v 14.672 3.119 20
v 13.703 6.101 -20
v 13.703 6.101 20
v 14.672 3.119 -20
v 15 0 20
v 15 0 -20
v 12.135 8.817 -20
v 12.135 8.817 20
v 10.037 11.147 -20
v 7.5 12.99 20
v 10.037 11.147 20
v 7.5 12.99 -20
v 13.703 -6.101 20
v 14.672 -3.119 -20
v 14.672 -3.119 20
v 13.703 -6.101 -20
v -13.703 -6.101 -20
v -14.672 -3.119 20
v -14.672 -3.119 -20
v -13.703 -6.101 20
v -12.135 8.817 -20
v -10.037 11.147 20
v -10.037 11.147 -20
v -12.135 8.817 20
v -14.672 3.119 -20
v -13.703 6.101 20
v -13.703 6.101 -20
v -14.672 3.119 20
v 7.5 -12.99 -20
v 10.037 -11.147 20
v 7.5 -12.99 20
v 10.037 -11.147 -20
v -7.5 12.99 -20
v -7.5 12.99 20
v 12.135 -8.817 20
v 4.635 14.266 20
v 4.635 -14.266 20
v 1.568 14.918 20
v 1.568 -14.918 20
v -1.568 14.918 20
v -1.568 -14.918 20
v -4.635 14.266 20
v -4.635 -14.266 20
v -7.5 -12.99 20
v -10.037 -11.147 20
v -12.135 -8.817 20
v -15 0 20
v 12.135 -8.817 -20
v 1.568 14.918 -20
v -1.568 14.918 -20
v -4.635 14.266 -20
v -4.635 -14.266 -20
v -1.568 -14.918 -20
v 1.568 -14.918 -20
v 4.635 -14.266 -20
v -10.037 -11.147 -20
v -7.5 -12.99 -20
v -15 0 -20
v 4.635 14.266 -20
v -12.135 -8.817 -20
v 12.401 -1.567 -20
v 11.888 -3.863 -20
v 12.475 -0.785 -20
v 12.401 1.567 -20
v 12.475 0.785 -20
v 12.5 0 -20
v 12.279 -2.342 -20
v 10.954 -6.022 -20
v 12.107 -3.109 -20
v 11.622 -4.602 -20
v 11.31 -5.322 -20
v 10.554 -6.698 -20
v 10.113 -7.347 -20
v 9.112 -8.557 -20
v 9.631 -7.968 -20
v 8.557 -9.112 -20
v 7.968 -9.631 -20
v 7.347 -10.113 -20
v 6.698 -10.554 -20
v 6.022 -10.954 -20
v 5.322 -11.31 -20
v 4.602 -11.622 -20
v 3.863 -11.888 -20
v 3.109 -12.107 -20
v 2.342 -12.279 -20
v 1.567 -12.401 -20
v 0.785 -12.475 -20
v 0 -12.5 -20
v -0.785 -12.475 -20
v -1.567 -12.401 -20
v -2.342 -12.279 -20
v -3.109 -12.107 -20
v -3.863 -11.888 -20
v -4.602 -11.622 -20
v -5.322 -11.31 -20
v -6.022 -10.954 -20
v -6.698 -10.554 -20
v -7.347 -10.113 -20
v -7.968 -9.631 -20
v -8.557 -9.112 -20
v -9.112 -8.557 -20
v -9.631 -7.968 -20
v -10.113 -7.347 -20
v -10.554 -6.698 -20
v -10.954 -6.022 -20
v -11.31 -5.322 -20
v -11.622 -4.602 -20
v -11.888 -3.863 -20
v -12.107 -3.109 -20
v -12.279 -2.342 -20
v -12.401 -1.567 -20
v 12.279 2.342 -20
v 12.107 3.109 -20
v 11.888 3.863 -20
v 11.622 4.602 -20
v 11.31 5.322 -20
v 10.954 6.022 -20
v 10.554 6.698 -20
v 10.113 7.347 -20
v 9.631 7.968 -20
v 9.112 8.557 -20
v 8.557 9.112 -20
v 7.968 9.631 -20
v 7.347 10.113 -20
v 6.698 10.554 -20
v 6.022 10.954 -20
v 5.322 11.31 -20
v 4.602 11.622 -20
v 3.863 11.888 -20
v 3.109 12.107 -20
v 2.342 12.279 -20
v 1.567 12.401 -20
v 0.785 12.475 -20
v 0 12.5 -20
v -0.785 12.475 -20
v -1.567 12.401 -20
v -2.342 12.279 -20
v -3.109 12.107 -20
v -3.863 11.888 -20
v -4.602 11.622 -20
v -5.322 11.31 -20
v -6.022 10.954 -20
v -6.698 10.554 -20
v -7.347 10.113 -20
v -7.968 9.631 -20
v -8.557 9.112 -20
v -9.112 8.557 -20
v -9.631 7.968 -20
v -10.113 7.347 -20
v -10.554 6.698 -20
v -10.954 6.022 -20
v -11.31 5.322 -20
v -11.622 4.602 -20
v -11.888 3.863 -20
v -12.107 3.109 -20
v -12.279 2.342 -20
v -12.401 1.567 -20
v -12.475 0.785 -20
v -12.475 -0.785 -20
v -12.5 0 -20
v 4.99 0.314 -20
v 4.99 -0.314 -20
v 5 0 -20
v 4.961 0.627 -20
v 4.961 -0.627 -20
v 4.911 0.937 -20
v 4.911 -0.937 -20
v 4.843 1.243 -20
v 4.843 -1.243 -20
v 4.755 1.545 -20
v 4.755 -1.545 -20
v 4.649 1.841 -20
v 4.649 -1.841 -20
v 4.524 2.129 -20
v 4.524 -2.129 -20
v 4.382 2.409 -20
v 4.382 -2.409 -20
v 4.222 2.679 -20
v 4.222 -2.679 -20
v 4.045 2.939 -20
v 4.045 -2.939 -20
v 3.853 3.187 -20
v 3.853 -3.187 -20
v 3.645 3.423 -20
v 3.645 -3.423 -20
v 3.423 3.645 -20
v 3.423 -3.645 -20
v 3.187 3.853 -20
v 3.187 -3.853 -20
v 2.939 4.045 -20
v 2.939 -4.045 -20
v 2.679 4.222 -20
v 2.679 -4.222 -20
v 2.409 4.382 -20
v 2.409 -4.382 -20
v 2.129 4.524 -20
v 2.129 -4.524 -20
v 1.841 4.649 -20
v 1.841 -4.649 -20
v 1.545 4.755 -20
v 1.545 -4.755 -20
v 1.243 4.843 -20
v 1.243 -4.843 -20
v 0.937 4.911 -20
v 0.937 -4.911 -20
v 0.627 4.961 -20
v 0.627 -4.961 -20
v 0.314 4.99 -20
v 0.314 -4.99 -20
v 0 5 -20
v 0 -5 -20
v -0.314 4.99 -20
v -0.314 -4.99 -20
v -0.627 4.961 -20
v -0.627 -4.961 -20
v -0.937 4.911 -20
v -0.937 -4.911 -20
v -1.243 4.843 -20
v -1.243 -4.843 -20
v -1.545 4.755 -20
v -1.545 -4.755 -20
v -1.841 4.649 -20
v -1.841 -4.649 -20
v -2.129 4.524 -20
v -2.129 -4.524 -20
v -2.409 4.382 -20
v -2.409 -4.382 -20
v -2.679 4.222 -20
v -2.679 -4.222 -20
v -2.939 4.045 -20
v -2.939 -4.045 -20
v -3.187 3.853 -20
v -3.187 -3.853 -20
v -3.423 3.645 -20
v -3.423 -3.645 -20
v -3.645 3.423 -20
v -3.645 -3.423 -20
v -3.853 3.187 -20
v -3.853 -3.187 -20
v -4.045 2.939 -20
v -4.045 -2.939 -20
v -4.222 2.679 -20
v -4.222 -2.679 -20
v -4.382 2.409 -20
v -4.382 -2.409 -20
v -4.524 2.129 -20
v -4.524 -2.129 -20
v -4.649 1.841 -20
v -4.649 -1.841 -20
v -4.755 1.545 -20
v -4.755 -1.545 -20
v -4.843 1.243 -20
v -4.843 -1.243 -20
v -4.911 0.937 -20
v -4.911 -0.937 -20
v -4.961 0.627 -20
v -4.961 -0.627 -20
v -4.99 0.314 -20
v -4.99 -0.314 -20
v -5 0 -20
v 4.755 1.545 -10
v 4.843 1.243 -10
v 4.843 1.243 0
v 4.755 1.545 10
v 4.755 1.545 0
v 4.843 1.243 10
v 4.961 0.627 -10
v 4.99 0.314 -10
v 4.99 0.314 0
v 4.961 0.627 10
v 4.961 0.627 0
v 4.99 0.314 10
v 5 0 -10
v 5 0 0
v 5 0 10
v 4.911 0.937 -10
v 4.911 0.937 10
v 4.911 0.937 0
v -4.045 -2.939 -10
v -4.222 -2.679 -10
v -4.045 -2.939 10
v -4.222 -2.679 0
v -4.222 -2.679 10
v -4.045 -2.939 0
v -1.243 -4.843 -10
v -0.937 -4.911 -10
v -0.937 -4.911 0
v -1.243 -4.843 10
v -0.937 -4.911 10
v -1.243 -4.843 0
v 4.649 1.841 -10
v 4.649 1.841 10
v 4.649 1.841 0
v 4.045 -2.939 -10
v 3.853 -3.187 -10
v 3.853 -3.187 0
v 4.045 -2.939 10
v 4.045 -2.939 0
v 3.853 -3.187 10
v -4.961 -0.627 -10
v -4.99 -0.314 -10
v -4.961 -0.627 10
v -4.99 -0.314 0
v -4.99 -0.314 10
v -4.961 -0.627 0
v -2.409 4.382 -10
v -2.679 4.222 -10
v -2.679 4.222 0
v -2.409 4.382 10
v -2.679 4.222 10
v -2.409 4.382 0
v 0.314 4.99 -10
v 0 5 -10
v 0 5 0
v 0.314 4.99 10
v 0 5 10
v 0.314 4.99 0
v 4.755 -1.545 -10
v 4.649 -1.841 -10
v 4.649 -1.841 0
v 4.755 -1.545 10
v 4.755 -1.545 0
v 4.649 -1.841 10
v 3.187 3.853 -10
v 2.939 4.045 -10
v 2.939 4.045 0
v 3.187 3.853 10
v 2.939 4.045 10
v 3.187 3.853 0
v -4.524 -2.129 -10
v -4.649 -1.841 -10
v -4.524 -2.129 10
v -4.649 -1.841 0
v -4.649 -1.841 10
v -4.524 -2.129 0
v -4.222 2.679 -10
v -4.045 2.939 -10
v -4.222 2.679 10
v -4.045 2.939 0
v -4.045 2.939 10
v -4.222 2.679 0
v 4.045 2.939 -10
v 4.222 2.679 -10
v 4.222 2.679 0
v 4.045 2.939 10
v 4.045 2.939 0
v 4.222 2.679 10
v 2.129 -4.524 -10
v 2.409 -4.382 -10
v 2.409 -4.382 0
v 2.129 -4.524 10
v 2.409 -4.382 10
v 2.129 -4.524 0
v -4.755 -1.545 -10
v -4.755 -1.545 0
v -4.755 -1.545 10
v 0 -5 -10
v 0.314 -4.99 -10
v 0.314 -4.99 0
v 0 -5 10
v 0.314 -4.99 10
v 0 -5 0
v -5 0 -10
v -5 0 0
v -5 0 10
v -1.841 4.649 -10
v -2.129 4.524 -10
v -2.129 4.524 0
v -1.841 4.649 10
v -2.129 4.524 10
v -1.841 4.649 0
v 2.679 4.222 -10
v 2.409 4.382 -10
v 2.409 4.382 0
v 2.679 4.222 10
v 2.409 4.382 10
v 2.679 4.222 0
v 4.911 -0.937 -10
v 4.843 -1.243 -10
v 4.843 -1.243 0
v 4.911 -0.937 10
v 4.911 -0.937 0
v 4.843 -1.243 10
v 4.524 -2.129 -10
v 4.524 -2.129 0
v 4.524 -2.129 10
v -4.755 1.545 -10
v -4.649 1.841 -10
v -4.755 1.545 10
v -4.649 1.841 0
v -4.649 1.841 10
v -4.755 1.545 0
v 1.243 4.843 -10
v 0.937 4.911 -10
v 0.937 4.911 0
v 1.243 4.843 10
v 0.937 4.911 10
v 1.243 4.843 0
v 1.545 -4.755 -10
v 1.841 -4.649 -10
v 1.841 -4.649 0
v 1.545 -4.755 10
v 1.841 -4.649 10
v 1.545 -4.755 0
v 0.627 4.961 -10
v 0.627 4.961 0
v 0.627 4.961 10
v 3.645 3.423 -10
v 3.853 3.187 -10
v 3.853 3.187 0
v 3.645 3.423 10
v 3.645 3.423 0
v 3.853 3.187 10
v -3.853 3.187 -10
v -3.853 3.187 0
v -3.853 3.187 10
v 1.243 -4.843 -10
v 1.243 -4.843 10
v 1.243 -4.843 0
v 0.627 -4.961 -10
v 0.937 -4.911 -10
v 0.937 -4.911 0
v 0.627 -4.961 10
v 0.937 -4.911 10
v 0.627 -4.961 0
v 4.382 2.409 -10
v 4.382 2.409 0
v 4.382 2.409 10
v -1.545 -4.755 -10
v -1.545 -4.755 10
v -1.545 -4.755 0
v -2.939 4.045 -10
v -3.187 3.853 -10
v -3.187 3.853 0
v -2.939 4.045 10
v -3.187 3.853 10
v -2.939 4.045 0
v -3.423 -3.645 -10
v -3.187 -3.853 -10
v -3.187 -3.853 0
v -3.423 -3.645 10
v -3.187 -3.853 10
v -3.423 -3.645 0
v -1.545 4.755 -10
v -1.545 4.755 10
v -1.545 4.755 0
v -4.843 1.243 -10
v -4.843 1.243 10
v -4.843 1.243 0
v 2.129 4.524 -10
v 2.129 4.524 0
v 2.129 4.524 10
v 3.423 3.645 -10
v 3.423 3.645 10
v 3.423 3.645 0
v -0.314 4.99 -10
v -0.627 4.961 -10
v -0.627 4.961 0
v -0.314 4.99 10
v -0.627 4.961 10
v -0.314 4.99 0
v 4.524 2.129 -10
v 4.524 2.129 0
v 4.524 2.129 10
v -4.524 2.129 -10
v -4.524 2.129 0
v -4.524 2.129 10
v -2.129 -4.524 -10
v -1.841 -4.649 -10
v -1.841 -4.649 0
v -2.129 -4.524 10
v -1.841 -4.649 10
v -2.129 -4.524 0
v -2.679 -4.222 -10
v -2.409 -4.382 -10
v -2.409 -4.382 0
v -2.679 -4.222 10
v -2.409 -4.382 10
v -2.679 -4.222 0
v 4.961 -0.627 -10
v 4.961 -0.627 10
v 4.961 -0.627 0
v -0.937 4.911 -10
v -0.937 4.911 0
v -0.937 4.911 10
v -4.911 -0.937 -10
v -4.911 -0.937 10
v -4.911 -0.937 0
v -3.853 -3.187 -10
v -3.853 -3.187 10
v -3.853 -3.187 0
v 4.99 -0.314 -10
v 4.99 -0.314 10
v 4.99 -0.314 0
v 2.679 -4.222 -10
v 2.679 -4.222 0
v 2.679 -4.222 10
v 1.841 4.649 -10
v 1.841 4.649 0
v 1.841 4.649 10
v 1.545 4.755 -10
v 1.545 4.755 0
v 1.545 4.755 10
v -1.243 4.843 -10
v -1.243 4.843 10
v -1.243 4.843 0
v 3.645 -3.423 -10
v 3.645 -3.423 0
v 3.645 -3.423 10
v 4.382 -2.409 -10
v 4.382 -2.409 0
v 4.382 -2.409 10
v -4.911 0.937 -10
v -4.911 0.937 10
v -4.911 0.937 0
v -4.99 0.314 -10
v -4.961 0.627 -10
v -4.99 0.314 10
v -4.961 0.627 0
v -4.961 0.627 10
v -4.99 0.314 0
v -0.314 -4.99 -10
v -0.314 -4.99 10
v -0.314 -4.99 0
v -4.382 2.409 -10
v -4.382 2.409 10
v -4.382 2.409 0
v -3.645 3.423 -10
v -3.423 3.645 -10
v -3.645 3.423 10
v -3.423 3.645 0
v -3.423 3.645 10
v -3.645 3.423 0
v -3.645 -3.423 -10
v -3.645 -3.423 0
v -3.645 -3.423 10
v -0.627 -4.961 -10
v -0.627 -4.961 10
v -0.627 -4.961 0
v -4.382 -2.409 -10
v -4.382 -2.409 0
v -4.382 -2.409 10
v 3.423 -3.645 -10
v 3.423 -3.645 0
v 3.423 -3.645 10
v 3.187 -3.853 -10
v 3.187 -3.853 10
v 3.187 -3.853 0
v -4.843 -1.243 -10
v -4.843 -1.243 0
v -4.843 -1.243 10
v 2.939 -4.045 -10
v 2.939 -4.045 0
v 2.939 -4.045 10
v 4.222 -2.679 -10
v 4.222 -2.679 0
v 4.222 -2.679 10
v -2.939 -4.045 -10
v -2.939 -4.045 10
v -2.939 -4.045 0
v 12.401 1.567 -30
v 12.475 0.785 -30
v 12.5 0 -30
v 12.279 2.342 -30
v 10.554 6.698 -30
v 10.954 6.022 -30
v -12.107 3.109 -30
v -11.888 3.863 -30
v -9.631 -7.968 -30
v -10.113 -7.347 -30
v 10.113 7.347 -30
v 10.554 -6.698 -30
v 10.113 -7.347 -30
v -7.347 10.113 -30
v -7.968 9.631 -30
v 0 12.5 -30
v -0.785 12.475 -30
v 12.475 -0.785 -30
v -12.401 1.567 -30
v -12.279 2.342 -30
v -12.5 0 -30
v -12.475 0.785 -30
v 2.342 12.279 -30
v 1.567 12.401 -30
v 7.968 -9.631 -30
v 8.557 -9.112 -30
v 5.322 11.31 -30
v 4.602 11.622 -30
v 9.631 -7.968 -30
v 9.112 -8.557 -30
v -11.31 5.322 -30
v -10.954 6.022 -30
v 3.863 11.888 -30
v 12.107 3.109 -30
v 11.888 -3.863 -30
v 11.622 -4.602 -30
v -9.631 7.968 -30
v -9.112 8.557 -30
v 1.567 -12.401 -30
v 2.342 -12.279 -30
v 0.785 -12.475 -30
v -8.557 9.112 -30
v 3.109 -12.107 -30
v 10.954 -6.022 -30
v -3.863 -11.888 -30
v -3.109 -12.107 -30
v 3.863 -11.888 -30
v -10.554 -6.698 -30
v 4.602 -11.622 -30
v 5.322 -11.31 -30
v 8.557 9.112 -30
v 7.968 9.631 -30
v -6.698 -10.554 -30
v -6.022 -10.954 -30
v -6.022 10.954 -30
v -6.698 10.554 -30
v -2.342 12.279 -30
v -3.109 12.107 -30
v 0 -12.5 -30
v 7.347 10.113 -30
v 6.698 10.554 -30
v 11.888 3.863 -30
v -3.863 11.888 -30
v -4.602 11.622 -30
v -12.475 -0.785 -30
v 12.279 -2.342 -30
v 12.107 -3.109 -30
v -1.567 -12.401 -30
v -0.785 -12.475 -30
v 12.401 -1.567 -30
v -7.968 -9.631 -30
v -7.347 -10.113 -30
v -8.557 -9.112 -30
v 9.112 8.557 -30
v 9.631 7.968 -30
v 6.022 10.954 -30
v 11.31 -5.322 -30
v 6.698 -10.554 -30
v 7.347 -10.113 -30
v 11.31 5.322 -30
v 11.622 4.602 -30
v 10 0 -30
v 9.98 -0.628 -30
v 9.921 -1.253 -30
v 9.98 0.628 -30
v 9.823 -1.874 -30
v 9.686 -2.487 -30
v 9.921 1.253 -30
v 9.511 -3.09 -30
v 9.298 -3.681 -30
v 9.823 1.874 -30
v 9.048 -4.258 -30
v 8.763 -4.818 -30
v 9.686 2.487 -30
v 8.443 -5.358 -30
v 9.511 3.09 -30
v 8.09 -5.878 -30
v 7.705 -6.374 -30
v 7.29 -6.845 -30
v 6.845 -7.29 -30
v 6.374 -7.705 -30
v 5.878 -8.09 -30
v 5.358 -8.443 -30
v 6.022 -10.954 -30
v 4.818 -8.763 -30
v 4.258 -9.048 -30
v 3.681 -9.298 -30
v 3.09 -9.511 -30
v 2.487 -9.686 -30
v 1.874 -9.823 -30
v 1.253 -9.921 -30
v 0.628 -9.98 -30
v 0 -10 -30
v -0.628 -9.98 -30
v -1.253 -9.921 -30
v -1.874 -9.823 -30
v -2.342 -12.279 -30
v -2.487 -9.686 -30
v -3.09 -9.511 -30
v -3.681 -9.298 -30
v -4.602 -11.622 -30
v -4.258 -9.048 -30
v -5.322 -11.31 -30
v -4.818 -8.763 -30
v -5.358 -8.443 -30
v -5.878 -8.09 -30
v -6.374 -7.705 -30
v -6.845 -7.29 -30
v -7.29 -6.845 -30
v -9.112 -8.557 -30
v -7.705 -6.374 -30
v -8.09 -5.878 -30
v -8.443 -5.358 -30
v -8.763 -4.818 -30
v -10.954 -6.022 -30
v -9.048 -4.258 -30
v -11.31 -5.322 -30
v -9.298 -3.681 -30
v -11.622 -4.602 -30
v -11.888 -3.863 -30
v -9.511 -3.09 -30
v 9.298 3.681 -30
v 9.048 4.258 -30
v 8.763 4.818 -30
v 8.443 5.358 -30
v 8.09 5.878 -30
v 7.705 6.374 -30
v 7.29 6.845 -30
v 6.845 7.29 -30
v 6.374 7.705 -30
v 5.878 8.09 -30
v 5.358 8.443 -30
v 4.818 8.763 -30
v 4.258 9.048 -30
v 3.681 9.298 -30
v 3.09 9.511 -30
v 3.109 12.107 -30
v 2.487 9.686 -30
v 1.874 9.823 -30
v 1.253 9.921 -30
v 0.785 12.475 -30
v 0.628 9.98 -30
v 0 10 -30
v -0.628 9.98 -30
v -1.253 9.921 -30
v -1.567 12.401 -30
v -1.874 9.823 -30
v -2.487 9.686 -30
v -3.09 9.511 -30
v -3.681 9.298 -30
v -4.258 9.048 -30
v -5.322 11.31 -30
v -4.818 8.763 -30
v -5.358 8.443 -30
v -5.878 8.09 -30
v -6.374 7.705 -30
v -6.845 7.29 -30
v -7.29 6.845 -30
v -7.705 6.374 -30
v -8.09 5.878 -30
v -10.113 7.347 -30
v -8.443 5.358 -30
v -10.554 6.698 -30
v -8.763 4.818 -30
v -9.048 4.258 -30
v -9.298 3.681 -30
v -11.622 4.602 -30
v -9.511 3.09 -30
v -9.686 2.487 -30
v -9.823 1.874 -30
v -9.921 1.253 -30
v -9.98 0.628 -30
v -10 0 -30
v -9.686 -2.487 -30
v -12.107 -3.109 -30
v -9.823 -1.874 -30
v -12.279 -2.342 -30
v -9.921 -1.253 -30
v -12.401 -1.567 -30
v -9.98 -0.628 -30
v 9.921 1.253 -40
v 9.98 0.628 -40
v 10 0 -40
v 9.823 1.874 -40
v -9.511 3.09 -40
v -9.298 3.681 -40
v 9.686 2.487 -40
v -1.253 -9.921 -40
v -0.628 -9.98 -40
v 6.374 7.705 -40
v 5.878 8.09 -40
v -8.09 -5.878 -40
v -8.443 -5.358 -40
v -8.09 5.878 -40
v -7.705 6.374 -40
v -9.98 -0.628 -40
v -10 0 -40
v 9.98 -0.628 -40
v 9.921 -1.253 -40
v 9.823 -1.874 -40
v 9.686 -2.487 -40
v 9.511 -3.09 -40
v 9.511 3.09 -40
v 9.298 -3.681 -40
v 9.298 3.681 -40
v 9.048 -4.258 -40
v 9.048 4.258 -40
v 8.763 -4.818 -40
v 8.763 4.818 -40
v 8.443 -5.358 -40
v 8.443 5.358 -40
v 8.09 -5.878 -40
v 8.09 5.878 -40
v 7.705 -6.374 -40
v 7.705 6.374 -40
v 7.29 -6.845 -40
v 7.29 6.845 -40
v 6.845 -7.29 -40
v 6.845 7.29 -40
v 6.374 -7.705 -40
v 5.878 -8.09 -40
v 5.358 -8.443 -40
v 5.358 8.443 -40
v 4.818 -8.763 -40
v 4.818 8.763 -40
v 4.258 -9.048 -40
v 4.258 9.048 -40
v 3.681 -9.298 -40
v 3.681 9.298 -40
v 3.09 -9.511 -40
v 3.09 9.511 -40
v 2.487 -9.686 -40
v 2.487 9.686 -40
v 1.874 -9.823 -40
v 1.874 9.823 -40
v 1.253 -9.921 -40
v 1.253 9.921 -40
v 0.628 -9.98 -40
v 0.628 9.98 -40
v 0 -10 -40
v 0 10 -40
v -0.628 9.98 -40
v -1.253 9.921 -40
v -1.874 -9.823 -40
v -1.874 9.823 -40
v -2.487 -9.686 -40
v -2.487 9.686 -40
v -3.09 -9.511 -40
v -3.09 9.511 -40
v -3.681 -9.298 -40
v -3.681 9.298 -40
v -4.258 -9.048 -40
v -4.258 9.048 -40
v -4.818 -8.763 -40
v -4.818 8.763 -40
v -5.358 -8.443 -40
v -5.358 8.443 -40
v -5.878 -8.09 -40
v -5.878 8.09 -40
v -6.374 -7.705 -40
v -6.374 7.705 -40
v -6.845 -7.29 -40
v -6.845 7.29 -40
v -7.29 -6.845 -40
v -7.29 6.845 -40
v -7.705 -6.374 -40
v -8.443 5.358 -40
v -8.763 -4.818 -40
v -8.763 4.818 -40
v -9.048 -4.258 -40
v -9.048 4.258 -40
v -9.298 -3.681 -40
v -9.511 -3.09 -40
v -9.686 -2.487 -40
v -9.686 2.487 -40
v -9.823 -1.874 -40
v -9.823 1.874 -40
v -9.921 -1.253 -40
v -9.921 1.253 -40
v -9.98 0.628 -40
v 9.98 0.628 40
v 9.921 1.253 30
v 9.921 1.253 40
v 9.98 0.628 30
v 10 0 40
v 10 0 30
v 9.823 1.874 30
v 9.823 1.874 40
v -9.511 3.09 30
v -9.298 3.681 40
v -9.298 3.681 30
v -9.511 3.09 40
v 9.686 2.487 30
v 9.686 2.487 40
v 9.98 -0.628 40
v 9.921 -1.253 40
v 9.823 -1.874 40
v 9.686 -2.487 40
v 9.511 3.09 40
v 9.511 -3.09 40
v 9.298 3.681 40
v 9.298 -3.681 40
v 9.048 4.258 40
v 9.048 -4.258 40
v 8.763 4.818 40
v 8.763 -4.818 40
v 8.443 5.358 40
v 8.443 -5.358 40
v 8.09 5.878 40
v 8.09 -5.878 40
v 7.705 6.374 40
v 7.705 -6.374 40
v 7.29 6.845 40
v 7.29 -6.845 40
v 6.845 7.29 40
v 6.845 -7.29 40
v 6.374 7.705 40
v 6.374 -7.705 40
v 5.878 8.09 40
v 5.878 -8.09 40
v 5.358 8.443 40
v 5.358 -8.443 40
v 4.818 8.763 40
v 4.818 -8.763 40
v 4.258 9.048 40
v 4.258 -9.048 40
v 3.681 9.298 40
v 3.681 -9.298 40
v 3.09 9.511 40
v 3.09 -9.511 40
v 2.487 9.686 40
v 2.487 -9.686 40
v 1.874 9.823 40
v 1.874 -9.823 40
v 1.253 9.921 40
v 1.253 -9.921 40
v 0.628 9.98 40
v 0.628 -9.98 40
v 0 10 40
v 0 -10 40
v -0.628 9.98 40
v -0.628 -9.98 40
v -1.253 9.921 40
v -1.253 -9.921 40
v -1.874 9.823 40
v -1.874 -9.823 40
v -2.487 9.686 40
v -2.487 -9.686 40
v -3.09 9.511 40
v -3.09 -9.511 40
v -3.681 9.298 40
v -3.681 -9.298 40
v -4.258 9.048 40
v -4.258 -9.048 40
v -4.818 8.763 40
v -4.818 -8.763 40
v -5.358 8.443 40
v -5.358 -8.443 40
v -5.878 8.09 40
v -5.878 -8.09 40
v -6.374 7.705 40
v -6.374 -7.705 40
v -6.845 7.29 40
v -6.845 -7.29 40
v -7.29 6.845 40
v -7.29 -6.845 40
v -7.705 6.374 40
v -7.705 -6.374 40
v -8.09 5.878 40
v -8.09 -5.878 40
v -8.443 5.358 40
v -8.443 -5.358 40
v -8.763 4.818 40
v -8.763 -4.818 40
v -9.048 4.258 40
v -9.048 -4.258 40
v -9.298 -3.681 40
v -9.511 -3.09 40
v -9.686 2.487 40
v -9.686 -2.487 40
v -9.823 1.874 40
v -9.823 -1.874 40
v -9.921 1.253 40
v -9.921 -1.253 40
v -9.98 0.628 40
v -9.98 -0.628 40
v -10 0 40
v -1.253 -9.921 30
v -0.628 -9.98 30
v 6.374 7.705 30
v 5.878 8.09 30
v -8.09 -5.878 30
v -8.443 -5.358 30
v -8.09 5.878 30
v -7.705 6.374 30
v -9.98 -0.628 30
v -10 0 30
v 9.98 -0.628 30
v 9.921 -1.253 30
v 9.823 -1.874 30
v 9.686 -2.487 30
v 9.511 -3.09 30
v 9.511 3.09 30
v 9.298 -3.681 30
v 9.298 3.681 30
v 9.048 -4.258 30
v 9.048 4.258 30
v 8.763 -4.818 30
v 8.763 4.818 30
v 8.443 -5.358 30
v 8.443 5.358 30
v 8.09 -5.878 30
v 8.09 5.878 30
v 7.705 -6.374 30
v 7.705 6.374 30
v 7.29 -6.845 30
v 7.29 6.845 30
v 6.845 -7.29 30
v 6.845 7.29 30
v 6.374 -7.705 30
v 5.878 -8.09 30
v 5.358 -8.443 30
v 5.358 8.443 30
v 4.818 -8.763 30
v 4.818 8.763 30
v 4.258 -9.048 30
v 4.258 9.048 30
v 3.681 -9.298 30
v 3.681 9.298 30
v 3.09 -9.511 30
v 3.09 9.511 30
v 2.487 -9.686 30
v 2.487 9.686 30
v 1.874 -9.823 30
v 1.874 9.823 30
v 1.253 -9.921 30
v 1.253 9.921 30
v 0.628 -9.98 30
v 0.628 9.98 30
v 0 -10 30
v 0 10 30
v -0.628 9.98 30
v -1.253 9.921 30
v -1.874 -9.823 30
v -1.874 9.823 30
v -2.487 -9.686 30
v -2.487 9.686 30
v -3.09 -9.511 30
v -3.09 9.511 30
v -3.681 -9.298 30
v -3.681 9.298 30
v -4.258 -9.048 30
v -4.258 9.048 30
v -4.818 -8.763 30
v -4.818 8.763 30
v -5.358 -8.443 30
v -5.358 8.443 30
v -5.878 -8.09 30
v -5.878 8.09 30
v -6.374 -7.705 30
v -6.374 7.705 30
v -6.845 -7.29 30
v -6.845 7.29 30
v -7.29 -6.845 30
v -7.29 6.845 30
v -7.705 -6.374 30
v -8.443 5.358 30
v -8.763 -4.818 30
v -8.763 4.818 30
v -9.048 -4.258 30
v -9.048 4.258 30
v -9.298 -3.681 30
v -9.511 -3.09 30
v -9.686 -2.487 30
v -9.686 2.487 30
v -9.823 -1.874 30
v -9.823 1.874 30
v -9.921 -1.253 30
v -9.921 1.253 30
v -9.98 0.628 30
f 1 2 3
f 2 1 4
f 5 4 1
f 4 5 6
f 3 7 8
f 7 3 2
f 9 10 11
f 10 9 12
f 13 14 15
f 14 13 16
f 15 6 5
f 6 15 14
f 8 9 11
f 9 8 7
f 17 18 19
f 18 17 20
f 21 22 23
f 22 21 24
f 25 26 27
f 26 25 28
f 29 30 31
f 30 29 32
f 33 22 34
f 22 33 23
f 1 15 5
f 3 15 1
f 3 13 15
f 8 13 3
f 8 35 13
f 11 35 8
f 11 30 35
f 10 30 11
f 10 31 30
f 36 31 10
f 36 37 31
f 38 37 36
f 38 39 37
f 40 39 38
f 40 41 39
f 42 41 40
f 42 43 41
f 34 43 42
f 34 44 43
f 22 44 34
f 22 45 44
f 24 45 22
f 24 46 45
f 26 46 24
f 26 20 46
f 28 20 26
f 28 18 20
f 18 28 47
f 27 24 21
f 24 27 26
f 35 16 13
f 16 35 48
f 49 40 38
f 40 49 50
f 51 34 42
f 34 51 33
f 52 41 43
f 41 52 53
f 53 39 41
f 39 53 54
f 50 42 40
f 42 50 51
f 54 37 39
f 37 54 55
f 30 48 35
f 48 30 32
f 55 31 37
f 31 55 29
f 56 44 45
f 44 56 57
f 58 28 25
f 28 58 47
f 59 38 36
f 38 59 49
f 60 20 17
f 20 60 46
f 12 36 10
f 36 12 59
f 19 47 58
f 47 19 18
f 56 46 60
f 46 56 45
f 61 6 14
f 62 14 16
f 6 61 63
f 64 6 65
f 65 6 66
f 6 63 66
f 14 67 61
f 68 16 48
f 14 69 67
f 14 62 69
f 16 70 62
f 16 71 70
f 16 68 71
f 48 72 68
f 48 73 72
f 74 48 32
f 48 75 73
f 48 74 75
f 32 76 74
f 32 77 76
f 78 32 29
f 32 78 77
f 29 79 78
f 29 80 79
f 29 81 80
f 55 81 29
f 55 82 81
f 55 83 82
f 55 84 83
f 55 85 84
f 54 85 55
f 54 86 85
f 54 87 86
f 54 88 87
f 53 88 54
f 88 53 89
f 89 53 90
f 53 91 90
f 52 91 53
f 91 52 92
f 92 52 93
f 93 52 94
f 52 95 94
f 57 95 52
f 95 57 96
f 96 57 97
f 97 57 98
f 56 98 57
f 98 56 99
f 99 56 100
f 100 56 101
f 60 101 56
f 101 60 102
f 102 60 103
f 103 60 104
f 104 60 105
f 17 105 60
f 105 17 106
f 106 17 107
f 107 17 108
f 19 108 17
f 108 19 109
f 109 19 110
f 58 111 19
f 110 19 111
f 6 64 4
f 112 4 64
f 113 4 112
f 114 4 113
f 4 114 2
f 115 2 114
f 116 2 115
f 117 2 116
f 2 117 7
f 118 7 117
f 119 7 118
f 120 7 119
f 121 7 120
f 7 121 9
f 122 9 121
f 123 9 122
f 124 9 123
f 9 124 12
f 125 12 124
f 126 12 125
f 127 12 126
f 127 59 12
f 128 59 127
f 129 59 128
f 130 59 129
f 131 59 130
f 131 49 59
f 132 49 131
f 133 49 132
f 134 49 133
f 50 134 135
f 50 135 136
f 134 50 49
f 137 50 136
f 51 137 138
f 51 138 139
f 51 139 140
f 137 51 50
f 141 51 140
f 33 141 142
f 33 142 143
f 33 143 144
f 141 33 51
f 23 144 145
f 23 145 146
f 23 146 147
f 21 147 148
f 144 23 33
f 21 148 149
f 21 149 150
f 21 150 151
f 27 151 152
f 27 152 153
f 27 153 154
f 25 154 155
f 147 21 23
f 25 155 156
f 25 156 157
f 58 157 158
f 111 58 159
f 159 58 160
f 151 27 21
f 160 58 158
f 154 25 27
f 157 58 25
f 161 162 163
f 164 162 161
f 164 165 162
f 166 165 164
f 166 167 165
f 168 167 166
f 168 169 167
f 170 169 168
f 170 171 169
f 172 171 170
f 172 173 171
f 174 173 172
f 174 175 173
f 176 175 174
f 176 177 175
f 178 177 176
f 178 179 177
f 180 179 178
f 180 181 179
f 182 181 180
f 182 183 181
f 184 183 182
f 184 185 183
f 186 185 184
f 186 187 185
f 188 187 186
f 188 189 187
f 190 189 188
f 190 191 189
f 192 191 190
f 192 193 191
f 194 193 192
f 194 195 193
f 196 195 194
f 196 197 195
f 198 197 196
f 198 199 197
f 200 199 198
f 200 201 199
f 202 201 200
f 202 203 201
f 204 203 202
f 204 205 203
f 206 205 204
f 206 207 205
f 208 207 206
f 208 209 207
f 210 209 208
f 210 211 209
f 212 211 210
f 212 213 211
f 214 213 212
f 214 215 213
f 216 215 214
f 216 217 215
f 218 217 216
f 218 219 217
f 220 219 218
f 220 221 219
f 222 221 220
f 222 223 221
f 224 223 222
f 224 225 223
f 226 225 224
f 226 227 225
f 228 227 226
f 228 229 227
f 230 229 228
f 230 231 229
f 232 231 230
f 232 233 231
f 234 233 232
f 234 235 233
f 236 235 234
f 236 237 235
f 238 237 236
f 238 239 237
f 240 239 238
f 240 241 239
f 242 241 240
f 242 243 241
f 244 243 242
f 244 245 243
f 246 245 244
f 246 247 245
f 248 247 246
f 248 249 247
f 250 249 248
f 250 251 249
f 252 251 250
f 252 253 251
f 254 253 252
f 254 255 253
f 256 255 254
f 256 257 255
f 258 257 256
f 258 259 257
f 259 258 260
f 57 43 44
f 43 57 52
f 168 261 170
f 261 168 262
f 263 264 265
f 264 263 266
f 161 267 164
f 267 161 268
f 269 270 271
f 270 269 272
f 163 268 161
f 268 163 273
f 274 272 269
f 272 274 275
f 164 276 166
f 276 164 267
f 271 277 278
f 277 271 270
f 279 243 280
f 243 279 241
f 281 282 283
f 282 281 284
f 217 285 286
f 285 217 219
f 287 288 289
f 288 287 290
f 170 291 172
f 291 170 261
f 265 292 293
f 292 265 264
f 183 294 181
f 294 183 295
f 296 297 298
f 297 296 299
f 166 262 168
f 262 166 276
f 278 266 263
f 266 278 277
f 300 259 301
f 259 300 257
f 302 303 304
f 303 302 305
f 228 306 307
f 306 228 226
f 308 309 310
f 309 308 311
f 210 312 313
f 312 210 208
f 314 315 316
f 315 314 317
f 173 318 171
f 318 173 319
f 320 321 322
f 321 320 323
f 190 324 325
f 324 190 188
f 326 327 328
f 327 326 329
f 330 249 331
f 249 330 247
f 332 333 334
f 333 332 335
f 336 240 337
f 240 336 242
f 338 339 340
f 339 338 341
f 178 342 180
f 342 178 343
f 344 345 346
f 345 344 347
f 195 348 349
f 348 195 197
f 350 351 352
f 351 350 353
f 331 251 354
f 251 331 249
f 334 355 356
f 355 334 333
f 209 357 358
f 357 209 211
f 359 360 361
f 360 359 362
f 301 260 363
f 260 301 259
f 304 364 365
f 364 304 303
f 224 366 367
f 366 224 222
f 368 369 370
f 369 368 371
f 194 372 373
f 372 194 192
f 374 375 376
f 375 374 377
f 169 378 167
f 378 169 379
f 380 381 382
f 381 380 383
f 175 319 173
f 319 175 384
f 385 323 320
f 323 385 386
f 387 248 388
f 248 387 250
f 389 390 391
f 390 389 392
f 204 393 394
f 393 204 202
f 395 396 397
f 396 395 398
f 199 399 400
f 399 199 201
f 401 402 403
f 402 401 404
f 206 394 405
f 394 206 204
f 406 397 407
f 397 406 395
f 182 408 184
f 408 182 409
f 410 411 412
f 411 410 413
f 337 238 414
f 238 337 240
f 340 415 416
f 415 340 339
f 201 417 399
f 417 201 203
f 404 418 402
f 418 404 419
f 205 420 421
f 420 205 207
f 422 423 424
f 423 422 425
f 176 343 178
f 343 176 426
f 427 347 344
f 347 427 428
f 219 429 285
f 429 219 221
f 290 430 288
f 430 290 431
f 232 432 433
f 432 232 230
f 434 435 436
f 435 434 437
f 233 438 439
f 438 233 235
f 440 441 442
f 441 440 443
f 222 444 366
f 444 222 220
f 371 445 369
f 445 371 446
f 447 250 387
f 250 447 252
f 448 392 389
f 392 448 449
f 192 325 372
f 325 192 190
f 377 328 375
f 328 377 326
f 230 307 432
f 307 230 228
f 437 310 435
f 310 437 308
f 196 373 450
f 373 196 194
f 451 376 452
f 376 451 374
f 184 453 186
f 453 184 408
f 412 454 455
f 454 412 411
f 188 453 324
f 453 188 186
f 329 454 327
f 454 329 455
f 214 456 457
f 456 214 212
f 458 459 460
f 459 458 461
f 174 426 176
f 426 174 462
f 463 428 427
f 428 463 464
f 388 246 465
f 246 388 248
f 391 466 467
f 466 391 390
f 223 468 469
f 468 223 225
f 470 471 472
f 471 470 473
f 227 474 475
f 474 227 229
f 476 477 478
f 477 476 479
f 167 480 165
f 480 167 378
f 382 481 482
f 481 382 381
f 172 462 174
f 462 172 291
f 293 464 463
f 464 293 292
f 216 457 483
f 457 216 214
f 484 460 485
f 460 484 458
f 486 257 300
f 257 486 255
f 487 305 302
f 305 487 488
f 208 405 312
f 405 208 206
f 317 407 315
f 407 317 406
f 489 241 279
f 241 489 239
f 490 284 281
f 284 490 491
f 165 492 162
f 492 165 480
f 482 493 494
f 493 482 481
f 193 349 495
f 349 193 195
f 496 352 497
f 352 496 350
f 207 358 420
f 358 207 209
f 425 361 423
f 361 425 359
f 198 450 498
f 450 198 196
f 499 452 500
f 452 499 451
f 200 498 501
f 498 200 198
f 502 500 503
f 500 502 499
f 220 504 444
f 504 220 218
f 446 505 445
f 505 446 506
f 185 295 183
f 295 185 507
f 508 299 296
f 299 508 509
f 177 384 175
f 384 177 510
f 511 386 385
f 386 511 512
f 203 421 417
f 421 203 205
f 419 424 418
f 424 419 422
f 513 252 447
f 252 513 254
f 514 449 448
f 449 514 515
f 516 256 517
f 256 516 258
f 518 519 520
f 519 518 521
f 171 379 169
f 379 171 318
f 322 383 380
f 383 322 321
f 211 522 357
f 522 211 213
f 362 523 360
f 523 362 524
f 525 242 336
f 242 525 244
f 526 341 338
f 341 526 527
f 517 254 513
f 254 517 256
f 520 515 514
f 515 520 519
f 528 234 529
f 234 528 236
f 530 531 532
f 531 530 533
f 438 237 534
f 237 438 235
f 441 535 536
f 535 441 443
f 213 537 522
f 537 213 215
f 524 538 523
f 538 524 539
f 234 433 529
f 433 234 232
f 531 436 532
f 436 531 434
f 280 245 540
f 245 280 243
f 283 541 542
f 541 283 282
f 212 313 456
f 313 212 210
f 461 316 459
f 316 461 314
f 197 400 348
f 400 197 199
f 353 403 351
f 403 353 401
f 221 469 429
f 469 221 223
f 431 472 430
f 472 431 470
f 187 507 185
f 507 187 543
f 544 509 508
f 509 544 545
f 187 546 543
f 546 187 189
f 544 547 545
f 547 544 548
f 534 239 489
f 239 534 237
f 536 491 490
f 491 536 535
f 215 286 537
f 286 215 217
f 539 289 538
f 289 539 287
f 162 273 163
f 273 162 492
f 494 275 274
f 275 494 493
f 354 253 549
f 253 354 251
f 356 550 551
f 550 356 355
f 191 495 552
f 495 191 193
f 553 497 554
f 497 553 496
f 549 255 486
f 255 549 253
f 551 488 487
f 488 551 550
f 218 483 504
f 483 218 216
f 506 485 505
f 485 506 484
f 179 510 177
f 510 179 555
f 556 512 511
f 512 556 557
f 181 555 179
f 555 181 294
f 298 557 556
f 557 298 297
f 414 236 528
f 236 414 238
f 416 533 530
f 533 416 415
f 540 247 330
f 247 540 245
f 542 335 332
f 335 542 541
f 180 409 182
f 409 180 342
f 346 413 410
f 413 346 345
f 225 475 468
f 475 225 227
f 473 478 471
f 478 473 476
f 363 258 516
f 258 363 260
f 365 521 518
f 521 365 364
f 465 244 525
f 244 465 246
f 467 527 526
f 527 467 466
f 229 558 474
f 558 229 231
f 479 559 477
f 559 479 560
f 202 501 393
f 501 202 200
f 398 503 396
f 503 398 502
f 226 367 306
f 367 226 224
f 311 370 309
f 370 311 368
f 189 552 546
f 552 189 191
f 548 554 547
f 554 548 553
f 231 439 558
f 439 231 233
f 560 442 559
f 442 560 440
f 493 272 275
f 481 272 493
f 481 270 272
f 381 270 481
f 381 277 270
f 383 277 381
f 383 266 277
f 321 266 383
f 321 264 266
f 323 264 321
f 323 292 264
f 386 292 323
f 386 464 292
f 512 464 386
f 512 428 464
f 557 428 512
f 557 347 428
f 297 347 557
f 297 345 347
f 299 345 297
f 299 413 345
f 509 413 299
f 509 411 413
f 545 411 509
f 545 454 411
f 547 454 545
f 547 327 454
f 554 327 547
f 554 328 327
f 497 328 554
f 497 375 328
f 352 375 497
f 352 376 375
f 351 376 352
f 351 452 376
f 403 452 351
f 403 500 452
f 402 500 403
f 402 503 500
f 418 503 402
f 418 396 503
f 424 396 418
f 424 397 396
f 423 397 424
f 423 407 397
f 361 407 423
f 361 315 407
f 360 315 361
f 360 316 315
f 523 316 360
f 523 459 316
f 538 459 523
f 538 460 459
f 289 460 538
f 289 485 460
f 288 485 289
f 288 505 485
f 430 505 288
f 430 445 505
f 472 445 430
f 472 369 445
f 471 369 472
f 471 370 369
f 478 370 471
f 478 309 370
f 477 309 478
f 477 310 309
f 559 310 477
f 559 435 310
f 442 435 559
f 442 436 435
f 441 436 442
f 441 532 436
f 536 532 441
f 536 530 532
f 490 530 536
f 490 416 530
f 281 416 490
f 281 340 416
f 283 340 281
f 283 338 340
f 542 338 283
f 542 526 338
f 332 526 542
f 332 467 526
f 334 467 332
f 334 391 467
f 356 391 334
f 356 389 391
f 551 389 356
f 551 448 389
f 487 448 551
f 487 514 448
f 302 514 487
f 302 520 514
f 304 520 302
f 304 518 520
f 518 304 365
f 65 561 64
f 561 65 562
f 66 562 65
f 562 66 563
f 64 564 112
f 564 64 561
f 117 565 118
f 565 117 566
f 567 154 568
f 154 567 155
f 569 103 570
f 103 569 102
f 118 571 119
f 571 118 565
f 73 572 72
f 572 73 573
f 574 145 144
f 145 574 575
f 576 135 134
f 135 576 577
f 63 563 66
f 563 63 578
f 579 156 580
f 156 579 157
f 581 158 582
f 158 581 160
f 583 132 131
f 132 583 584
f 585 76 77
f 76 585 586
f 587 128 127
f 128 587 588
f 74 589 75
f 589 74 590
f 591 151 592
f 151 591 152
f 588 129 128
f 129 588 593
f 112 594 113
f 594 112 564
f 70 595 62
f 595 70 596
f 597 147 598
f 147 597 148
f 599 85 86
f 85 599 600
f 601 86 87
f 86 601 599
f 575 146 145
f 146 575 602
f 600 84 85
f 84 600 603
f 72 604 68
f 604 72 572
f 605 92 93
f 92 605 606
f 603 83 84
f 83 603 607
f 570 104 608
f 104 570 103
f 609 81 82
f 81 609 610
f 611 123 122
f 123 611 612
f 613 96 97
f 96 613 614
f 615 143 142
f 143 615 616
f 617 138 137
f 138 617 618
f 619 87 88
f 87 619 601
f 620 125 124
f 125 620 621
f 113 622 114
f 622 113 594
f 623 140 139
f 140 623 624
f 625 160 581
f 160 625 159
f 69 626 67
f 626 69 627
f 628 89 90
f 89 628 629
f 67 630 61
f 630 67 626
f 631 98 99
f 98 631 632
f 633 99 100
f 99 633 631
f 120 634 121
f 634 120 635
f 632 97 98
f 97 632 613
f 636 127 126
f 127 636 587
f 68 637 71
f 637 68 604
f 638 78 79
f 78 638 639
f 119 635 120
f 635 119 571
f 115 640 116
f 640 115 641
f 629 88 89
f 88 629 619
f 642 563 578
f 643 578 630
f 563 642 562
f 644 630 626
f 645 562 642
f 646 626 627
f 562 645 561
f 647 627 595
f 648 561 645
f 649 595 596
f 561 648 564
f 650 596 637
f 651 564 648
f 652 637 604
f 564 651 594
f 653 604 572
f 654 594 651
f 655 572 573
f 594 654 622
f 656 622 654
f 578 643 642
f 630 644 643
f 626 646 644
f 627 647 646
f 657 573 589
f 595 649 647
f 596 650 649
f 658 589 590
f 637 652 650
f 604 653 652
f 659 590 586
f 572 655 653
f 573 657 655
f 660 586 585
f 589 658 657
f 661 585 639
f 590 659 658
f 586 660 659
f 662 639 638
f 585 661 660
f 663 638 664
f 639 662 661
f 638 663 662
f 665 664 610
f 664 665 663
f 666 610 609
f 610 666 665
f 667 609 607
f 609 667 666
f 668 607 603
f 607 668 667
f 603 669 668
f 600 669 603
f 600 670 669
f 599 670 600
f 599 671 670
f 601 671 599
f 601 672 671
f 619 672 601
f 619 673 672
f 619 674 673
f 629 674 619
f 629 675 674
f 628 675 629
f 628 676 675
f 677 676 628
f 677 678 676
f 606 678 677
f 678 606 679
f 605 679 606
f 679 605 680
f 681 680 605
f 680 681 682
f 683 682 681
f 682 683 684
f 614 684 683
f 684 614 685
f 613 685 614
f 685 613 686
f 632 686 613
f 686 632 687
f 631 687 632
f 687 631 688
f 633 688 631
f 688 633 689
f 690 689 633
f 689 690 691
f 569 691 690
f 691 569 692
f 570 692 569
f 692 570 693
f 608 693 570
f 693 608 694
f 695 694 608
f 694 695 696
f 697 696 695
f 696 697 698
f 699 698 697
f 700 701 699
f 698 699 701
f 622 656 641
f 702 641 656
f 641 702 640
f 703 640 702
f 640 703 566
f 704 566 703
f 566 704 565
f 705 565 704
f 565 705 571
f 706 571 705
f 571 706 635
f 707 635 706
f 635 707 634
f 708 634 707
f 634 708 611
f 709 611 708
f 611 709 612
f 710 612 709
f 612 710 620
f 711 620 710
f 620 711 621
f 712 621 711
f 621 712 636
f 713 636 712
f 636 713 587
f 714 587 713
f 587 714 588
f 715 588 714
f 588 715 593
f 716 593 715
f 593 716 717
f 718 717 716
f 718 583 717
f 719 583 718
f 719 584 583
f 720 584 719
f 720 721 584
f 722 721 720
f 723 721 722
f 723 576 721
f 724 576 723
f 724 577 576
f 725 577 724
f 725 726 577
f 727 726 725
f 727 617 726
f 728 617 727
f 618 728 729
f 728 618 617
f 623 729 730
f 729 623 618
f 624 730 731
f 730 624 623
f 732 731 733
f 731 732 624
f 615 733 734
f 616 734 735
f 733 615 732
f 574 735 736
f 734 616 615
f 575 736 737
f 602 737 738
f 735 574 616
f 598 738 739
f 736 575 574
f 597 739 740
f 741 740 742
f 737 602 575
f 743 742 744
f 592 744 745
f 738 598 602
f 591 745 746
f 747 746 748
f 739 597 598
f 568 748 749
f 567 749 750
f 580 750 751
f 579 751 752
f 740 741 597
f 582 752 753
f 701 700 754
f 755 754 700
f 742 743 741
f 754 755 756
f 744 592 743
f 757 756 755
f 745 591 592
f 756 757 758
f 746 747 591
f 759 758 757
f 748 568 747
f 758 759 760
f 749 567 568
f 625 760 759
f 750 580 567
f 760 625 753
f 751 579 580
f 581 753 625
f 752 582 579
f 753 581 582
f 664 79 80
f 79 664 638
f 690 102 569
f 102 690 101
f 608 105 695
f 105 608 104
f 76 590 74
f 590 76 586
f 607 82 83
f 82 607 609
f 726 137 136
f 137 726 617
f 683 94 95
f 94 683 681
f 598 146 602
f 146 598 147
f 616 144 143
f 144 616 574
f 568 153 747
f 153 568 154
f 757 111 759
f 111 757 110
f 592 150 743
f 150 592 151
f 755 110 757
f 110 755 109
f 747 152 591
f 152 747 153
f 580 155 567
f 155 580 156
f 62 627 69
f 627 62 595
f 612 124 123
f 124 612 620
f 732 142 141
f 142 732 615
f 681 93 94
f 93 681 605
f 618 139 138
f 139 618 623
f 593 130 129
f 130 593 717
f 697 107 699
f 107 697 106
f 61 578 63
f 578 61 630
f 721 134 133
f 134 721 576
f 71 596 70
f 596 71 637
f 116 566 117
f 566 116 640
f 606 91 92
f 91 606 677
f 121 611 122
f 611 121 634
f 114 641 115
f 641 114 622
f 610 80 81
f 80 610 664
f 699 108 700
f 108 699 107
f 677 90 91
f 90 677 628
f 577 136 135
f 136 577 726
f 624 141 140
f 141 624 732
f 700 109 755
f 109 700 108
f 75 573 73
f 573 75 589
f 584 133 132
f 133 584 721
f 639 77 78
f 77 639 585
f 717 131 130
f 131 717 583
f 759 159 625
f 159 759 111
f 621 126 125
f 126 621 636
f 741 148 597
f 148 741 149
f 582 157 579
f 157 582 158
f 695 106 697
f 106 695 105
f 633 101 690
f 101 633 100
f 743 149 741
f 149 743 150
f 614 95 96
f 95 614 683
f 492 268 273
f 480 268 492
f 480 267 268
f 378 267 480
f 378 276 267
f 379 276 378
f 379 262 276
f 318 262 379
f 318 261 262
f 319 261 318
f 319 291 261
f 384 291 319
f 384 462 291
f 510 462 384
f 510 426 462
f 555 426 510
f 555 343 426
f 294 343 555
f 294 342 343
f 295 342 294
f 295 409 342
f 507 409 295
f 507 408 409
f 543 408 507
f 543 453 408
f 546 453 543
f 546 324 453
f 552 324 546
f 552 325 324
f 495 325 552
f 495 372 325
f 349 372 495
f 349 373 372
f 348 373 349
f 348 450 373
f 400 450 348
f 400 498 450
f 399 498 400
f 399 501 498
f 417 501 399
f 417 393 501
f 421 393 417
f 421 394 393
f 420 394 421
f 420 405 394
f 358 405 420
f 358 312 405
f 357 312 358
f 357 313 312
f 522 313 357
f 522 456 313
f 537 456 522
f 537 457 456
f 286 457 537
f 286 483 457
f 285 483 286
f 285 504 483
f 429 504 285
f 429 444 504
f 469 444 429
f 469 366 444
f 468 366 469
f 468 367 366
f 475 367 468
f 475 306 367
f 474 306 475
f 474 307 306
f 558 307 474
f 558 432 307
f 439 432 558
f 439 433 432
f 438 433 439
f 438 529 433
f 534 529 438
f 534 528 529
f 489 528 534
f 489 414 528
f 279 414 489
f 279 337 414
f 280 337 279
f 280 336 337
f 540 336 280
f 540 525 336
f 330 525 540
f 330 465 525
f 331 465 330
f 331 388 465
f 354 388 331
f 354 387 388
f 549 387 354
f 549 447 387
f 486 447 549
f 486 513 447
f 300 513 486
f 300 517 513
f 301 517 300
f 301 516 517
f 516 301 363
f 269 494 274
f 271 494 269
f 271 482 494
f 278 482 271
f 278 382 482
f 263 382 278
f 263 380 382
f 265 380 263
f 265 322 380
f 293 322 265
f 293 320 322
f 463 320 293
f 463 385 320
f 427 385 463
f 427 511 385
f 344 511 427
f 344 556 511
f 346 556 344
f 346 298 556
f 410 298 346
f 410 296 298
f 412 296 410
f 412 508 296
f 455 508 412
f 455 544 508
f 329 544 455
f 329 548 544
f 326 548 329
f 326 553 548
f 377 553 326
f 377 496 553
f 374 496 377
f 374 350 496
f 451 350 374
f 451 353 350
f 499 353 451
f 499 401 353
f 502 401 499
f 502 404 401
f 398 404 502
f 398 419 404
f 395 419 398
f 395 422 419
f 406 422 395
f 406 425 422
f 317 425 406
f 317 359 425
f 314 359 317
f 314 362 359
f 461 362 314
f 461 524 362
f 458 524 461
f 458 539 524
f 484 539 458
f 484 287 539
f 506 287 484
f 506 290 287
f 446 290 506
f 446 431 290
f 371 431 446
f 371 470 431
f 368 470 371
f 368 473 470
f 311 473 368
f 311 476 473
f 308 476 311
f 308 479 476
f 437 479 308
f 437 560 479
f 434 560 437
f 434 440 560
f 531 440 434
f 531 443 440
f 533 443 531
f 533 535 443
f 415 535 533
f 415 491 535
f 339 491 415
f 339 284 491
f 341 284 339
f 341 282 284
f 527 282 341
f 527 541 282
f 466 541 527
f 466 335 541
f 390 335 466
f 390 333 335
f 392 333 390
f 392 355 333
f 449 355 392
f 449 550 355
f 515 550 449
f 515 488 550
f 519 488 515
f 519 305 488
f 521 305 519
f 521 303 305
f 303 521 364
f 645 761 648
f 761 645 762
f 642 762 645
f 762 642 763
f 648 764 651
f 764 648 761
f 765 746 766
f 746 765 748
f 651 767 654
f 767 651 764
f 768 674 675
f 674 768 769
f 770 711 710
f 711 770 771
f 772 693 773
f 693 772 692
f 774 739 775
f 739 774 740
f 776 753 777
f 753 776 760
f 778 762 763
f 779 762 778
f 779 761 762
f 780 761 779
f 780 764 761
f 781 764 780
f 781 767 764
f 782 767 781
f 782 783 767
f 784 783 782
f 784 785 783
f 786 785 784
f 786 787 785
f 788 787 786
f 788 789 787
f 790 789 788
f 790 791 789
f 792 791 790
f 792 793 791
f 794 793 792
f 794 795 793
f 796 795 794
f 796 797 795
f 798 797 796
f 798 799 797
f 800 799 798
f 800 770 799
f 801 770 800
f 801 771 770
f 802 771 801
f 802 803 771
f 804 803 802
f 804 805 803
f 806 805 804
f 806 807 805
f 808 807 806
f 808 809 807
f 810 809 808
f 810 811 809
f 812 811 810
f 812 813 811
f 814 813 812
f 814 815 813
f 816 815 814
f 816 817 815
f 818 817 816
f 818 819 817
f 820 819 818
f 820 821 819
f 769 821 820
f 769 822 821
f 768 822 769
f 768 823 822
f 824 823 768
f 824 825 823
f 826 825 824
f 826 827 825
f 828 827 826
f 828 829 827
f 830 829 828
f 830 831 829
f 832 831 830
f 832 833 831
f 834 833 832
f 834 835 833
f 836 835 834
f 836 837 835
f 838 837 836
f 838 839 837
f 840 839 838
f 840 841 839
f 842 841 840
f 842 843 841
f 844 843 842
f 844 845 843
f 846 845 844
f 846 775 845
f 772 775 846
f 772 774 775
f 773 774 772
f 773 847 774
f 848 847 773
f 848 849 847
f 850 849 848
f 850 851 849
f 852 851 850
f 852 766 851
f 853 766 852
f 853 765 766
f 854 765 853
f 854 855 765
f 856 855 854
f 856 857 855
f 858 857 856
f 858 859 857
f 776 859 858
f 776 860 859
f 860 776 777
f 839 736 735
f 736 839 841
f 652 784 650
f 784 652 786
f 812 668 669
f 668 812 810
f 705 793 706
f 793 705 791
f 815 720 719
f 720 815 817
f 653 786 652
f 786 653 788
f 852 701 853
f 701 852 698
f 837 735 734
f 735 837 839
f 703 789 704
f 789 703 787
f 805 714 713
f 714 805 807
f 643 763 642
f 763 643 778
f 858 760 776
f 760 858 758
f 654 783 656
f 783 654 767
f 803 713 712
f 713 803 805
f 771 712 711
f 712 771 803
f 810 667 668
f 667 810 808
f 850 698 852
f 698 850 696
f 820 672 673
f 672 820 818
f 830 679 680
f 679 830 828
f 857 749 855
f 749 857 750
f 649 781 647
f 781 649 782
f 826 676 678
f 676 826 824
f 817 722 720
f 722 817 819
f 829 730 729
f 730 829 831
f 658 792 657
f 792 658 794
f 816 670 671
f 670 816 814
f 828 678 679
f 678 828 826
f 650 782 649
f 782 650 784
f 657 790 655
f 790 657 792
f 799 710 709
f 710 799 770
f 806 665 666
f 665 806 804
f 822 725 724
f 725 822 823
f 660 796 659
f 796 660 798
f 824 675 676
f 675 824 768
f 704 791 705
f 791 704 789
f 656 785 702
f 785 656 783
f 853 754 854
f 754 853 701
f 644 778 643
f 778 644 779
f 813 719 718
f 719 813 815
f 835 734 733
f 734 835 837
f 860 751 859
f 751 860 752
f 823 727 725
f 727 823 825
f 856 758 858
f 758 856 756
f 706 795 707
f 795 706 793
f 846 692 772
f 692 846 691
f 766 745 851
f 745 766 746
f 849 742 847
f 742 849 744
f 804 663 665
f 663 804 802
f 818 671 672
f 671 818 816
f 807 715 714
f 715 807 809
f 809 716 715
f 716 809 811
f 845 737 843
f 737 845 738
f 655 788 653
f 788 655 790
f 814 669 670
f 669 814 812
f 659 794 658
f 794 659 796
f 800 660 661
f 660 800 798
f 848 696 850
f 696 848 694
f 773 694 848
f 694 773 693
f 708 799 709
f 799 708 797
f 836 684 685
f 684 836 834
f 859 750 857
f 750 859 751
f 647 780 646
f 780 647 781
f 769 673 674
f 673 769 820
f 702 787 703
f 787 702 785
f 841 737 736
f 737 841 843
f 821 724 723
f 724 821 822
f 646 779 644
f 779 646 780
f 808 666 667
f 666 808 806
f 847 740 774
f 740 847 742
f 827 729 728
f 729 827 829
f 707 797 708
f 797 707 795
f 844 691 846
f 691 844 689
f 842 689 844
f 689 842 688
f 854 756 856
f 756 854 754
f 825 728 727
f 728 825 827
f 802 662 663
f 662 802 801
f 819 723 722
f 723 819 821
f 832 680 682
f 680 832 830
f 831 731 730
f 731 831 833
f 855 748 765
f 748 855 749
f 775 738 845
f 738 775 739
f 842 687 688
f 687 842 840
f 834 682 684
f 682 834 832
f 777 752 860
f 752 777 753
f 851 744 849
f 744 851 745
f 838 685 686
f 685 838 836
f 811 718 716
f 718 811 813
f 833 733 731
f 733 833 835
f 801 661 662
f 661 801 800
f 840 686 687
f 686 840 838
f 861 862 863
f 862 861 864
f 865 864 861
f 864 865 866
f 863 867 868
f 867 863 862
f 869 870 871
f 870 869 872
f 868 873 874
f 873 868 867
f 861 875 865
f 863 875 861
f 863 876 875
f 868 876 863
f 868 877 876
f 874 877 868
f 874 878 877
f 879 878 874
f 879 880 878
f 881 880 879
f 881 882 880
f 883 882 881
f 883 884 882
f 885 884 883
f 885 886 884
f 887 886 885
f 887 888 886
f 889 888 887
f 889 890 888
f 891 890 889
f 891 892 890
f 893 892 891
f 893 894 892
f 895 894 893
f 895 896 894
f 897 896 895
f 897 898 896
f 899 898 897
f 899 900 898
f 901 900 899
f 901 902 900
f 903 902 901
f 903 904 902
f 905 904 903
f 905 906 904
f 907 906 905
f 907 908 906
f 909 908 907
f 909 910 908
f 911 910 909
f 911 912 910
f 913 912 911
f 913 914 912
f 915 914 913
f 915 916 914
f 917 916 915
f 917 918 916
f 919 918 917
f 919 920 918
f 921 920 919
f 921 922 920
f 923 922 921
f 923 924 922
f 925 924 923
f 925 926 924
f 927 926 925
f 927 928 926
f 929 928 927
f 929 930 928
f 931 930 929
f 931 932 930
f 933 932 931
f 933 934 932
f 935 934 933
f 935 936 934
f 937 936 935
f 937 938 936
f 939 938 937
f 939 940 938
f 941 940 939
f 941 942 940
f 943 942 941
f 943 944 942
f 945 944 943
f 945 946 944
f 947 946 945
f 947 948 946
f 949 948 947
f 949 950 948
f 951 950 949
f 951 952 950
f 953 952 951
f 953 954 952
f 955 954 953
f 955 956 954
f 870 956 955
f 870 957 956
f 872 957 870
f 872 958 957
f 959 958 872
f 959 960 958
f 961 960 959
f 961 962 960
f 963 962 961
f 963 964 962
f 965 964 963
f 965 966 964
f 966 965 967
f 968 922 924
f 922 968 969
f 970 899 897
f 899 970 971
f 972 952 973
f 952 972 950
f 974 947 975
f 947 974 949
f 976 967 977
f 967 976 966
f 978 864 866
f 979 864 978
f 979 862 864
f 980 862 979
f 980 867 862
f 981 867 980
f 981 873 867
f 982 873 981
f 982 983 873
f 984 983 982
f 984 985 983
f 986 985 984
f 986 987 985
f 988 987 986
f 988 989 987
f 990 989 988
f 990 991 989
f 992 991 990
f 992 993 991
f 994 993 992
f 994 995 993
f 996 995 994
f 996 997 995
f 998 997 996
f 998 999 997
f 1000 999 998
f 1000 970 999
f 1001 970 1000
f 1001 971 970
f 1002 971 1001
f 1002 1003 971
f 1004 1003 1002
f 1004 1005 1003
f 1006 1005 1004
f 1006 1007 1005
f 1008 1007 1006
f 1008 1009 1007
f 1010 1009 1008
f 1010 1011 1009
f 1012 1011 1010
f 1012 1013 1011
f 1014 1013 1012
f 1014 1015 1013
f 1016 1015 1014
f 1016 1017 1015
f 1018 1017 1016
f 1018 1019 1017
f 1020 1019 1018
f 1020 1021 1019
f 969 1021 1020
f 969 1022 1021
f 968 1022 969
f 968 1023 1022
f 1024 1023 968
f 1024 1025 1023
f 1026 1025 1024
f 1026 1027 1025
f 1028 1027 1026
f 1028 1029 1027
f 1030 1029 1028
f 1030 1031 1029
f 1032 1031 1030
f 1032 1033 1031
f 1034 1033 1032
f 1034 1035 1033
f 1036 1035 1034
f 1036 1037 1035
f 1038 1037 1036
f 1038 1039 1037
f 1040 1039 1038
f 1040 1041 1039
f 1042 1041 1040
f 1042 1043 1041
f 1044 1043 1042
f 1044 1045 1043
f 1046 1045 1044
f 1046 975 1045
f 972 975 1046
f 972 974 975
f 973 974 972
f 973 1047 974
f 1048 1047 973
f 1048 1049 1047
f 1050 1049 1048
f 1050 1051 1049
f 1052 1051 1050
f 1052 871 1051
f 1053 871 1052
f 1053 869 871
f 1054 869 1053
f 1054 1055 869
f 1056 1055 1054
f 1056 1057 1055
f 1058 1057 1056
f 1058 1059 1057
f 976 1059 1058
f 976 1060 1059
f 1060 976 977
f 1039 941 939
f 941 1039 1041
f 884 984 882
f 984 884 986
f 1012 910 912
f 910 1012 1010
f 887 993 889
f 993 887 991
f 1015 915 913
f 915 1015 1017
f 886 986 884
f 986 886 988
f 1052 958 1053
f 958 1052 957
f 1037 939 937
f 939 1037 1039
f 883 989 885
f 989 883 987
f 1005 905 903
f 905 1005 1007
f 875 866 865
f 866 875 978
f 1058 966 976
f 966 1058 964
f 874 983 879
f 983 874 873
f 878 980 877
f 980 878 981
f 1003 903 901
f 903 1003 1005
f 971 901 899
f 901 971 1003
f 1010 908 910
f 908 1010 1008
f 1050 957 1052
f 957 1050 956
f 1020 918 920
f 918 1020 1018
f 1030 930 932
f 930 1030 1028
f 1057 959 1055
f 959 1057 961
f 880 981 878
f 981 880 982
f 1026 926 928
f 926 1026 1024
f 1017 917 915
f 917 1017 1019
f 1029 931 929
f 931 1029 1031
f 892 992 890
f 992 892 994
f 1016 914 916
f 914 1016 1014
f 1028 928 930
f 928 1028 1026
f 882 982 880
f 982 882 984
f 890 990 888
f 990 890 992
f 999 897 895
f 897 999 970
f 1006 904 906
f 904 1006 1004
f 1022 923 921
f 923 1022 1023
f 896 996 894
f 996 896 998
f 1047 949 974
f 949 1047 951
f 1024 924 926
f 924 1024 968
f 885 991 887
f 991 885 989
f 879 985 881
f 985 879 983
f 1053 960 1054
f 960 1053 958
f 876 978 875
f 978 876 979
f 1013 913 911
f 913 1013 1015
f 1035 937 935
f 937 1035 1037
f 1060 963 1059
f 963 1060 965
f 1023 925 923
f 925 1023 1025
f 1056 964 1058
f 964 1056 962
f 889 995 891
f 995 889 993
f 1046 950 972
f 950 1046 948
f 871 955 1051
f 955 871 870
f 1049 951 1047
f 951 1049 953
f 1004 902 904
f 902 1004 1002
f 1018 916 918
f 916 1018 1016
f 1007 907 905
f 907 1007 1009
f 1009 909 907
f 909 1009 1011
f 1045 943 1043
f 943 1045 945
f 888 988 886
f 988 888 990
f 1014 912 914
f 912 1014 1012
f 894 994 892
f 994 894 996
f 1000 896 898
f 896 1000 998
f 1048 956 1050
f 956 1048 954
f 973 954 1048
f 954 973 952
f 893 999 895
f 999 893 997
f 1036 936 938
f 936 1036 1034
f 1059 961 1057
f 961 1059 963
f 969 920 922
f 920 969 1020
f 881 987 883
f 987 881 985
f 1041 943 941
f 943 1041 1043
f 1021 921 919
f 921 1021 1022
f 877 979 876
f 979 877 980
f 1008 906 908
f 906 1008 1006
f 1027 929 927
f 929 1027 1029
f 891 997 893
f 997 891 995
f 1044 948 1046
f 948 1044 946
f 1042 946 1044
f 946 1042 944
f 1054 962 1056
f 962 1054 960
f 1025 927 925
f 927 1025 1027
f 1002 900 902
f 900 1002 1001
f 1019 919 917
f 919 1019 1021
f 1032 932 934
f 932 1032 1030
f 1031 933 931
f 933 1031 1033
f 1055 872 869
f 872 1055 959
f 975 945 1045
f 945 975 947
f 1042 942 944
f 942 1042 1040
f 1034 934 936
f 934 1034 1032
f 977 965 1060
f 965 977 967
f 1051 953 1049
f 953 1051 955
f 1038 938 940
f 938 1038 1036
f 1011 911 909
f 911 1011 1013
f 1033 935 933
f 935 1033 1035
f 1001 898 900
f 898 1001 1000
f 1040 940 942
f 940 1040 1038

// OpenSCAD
module flexible_coupling() {
    difference() {
        // Base cylinder
        cylinder(h = 40, d = 30, center = true);
        
        // Through hole
        cylinder(h = 42, d = 10, center = true, $fn = 100);
    }
    
    // Connector part
    translate([0, 0, 15])
    cylinder(h = 10, d = 25, center = true, $fn = 100);
    
    translate([0, 0, -25])
    cylinder(h = 10, d = 25, center = true, $fn = 100);

    // Apply teeth-like feature based on images in-between
    translate([0, 0, -5])
    rotate([0, 0, 0])
    cylinder(h = 10, d = 25, center = true, $fn = 30);

    // End cap
    translate([0, 0, -35])
    cylinder(h = 10, d = 20, center = true, $fn = 100);

    // End cap
    translate([0, 0, 35])
    cylinder(h = 10, d = 20, center = true, $fn = 100);
}

flexible_coupling();
